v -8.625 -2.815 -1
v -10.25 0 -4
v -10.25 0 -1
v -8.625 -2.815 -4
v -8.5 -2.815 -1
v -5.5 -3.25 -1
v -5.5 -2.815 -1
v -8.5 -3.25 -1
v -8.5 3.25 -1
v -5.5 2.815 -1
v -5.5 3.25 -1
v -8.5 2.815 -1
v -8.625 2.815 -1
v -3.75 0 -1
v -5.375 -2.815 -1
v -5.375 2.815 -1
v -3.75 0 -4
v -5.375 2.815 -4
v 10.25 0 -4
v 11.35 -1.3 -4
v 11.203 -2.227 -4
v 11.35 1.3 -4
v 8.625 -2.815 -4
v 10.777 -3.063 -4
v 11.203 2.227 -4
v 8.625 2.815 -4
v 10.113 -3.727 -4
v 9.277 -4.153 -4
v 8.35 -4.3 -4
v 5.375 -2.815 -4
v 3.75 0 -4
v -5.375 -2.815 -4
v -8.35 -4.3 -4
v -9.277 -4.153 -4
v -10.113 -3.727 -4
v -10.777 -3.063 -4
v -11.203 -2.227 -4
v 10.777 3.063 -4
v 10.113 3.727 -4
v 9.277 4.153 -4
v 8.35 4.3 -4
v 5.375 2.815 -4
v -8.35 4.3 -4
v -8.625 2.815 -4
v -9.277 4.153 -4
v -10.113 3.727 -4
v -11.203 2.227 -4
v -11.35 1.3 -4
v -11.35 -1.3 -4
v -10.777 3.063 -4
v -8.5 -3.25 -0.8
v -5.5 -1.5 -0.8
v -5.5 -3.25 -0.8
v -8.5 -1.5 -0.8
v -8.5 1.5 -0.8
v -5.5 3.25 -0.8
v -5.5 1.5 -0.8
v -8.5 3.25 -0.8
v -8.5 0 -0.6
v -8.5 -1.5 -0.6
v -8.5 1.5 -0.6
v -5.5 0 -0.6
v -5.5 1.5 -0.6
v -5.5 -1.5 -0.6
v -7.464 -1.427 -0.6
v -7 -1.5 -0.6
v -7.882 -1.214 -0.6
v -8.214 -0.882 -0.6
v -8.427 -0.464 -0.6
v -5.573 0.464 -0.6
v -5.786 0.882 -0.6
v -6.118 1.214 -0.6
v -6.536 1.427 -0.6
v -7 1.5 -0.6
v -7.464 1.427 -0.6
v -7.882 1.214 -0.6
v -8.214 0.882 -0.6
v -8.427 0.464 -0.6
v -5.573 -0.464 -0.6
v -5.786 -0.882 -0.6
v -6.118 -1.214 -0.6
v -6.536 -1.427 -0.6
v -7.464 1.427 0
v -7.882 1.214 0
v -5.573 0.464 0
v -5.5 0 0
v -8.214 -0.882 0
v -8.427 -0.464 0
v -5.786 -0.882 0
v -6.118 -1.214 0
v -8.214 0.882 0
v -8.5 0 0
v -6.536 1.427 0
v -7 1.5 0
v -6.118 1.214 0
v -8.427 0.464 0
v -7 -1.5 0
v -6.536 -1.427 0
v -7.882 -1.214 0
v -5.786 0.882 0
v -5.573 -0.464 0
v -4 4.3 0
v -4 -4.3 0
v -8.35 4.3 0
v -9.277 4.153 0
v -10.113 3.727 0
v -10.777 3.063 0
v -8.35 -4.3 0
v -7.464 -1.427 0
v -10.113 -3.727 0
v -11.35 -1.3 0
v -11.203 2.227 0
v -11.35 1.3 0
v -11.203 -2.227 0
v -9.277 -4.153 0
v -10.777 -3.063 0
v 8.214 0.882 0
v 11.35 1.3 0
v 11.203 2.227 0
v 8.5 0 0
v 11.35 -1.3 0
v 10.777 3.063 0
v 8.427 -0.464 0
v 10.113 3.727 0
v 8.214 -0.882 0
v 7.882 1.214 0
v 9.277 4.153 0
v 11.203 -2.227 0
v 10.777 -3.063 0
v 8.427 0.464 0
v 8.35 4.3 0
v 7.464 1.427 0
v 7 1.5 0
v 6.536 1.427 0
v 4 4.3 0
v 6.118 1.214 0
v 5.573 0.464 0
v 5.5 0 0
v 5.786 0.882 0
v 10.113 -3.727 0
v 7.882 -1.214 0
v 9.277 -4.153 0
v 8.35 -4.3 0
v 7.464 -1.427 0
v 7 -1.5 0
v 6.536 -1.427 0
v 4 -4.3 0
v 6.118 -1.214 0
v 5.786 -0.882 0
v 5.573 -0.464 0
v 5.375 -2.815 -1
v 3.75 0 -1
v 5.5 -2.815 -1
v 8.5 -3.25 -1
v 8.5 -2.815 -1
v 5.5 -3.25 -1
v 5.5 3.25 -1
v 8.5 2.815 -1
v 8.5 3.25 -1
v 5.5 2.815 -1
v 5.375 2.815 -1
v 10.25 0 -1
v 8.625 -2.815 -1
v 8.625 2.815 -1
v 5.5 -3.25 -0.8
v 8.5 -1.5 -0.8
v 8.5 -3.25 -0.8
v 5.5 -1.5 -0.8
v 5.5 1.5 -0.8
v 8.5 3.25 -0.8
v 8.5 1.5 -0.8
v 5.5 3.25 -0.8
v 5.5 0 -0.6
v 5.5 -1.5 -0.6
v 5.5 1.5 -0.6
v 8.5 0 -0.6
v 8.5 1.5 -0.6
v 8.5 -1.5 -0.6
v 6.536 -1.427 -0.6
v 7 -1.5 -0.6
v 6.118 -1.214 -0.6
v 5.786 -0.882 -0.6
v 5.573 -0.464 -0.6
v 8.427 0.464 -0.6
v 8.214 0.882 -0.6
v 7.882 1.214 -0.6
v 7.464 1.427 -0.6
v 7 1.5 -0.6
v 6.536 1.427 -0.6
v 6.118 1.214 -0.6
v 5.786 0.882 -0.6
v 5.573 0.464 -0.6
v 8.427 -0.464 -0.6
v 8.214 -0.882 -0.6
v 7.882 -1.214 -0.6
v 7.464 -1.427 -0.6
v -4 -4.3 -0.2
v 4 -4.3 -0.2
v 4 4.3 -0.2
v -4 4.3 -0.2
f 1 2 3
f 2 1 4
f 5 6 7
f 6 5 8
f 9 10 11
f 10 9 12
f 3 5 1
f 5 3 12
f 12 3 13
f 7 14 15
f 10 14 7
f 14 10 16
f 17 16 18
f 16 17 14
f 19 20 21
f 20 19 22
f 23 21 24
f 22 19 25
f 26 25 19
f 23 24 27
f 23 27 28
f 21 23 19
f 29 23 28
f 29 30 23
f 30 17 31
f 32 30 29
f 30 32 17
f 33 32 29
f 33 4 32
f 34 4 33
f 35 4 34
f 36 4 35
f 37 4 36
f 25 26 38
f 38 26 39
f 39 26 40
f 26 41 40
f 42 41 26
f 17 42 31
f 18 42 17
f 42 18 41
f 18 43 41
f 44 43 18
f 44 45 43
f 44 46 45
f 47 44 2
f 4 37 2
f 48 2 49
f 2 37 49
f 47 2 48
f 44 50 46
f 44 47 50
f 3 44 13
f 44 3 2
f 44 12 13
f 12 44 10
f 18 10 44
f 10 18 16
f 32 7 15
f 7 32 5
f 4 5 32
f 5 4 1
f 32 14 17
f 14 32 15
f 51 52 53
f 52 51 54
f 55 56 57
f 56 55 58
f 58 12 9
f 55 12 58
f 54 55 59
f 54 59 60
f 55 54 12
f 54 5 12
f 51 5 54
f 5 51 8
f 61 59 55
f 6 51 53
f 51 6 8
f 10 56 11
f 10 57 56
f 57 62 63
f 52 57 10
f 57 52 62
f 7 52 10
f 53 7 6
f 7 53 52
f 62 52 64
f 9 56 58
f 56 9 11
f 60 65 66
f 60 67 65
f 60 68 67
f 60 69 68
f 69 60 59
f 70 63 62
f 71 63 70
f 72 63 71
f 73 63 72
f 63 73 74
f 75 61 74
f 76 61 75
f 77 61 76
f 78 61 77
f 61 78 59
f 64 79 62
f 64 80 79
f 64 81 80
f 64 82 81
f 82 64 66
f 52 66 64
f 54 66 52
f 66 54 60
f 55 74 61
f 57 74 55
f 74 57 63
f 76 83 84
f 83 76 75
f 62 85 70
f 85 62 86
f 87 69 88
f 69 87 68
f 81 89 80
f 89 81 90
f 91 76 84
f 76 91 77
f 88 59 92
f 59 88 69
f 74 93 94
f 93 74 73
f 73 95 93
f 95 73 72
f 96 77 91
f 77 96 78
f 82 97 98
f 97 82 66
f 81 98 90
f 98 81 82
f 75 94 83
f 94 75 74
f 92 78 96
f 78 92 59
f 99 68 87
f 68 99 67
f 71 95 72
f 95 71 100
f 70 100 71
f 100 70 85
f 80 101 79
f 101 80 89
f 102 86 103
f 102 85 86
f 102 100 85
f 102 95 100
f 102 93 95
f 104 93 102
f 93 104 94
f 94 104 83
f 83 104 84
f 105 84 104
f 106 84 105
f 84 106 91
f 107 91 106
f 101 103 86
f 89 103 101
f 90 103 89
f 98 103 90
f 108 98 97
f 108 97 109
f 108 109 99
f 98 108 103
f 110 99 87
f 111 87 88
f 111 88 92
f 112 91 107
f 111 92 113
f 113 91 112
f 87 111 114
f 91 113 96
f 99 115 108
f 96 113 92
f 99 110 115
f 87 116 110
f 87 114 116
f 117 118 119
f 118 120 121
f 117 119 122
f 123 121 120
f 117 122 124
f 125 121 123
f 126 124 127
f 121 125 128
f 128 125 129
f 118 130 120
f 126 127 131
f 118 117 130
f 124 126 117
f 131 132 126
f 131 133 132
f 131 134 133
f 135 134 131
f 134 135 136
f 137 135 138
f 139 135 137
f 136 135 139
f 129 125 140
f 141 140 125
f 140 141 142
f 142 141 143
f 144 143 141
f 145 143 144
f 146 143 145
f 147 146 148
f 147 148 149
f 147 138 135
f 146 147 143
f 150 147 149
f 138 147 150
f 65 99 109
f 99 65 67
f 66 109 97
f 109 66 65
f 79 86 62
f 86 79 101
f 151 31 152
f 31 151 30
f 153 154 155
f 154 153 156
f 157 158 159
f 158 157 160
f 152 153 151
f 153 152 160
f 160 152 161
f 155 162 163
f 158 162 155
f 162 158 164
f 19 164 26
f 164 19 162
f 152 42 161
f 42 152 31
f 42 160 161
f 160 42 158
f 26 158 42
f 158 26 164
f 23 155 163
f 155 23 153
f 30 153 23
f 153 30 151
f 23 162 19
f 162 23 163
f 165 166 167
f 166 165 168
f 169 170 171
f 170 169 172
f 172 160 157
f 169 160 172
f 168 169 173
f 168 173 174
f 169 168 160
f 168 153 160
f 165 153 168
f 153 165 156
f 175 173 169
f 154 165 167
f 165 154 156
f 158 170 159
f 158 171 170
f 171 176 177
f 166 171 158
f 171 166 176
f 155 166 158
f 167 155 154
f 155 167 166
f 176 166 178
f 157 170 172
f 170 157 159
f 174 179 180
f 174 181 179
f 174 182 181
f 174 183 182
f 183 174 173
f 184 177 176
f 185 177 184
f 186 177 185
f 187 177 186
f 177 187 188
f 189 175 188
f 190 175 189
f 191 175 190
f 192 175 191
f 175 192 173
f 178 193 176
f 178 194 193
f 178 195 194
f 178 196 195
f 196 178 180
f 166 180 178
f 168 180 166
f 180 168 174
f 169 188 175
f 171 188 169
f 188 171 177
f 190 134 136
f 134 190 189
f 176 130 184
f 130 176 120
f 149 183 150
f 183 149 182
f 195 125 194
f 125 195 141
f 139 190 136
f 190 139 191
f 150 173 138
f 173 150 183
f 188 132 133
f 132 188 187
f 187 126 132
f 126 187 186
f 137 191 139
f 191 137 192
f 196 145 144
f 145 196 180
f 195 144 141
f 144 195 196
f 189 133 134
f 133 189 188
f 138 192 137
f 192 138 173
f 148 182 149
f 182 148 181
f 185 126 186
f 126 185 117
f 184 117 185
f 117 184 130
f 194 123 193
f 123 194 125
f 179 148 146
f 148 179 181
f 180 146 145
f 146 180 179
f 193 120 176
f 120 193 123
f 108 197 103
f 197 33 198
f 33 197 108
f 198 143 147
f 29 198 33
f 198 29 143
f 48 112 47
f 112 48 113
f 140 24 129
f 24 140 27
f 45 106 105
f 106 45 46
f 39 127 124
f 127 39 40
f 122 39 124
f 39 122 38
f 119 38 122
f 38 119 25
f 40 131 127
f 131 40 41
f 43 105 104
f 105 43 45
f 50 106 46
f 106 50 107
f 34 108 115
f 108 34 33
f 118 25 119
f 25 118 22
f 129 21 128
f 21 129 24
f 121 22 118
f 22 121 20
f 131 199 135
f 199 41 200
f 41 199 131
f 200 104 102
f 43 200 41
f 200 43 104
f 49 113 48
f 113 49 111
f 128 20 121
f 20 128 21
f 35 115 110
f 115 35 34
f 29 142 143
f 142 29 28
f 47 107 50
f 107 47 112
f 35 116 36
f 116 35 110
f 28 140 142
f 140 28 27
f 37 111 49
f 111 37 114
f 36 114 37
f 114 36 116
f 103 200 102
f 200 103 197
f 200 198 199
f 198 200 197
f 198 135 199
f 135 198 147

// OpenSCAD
// file: ../lib/utils.scad
include <params.scad>;

function tol(val) = val - tolerance;

module cone(r, angle, invert=false) {
    h = tan((180 - angle) / 2) * r;
    translate([0, 0, -h]) {
        if (invert) {
                cylinder(r1=r,r2=0,h=h, $fn=20); 
        } else {
            cylinder(r1=0,r2=r,h=h, $fn=20); 
        }
    }
}

module roundrect(vect, r, center=false, $fn=20) {
    sq = len(vect) > 1
        ? [for (i = [0:1:len(vect)-1]) vect[i] - r * 2]
        : vect - r * 2;
    if (center) {
        translate([-(sq[0]+r*2)/2,-(sq[1]+r*2)/2])
        minkowski() {
            square(sq);
            translate([r, r])
                circle(r=r);
        }
    } else {
        minkowski() {
            square(sq);
            translate([r, r])
                circle(r=r);
        }
    }
}

module profile($fn=20) {
    minkowski() {
        translate([fan_case_radius, fan_case_radius, 0])
            square(fan_case - fan_case_radius * 2);
        circle(fan_case_radius, $fn);
    }
}

module fan_mount_points(radius, $fn=20) {
    offset = (fan_case - fan_screw_distance) / 2;
    translate([offset, offset, 0]) {
        circle(radius, $fn);
        translate([fan_screw_distance, 0, 0])
            circle(radius, $fn);
        translate([fan_screw_distance, fan_screw_distance, 0])
            circle(radius, $fn);
        translate([0, fan_screw_distance, 0])
            circle(radius, $fn);
    }
}

module square_grill(width, height, fin_width, fin_count) {
    fin_spacing = width / fin_count;
    difference() {
        square(width);
        union() {
            for (i = [0:1:fin_count]) {
                translate([(i + 1) * fin_spacing - (fin_spacing / 2) - (fin_width / 2), 0, 0])
                    square([fin_width, height]);
            }
        }
    }
}

module bushing(outer_r, inner_r, h) {
    linear_extrude(h)
        difference() {
            circle(r=outer_r);
            circle(r=inner_r);
        }
}

module screw_at_origin(r, d, l, head, head_d, cap, angle) {
    translate([0, 0, -l])
        screw(r, d, l, head, head_d, cap, angle);
}

module screw(r, d, l, head, head_d, cap, angle, fn=20, head_fn) {
    radius = r > 0 ? r : d / 2;
    head_r = head > 0 ? head : head_d / 2;
    hfn = head_fn ? head_fn : fn;

    union() {
        if (angle) {
            translate([0, 0, l])
                cone(head_r, angle, false);
        }
        linear_extrude(l)
            circle(r=radius, $fn=fn);
        if (cap > 0) {
            union() {
                translate([0, 0, l - cap])
                    linear_extrude(cap)
                        circle(r=head_r, $fn=hfn);
                translate([0, 0, l - cap - layer_height])
                    linear_extrude(layer_height)
                        square([radius * 2, head_r*2], center=true);
                translate([0, 0, l - cap - layer_height*2])
                    linear_extrude(layer_height)
                        square([radius * 2, radius*2], center=true);
            }
        }
    }
}

module inset_screw(r, d, l, head, head_d, cap, angle, inset, fn=20, head_fn) {
    screw_height = l - inset;
    head_r = head > 0 ? head : head_d / 2;

    union() {
        screw(
            r=r,
            d=d,
            l=screw_height,
            head=head_r,
            cap=cap,
            angle=angle,
            fn=fn,
            head_fn=head_fn
        );
        translate([0, 0, screw_height])
            linear_extrude(inset)
                circle(r=head_r, $fn=fn);
    }
}

function inch_to_mm(inches) = inches * 25.4;
// file: ../lib/params.scad
/*************/
/** Exhaust **/
/*************/

/**
 * Fan case sizes: used for all fan parts, including adapters, inlets
 * grills.
 */
fan_case = 120;
fan_screw_distance = 105;
fan_case_depth = 25;
fan_case_radius = 5;
fan_case_screw_radius = 2.5;
fan_case_socket_cap_radius = 5.6 / 2;
fan_case_screw_head_radius = 3;
fan_case_screw_head_angle = 90;

/**
 * Fan grill
 */
grill_screw_size = 3;
grill_screw_radius = grill_screw_size / 2;
grill_screw_inset = 2;
grill_radius = 114 / 2;
grill_fin_offset = 10;
grill_fin_thickness = 2;
grill_fin_degrees = 30;

rear_grill_thickness = 2;

front_grill_thickness = 2;
front_grill_fin_count = 6;
front_grill_fin_thickness = 2;

/**
 * Fan duct filter
 */
filter_thickness = 5;
filter_width = fan_screw_distance - fan_case_screw_radius * 3;
filter_offset = (fan_case - filter_width) / 2;

base_retainer_thickness = 2;
base_height = 30;
base_cut_offset = 10;
base_retainer_inset = 4;

/**
 * Fan to duct adapter
 */
adapter_thickness = 2;
adapter_duct_in = 4;
adapter_height = 14;
adapter_duct_height = 50;
flat_adapter_duct_height = 50;
flat_adapter_screw_radius = 2;
flat_adapter_screw_head_radius = 4;

/**
 * Fan adapter filter caddy
 */
caddy_thickness = 2;
caddy_handle_width = 20;
caddy_handle_depth = 10;
caddy_handle_grip_count = 5;
caddy_handle_grip_depth = 1;
caddy_handle_grip_width = 1;
caddy_clip_height = 2;
caddy_clip_depth = 6;
caddy_clip_offset = 1;

/***************/
/** Enclosure **/
/***************/

/**
 * Enclosure foot
 */
foot_lower_radius = 15;
foot_upper_radius = 20;
foot_height = 18;
foot_inset_radius = 4;
foot_inset_depth = 3;
foot_screw_radius = 4;
foot_screw_inset = 6;
foot_screw_head_radius = 8;

/**
 * Power supply attachment
 */
power_supply_case_thickness = 3.0;
power_supply_screw_radius = 1.5;
power_supply_bushing_radius = 7.5;

power_supply_cable_pass_width = 18;
power_supply_cable_pass_height = 5;
power_supply_cable_pass_overhang = 5;
power_supply_cable_pass_overhang_depth = power_supply_case_thickness;
power_supply_cable_pass_depth = 3;
power_supply_cable_pass_thickness = 3;

/**
 * LED strip holder
 */
led_strip_cutout = 0.2;
led_strip_depth = 4;
led_strip_width = 8;
led_strip_screw_offset = 1.5;
led_strip_screw_radius = 1.5;
led_strip_screw_head = 2.8;
led_strip_nut_head = 3.25;
led_strip_nut_inset = 3;
led_strip_screw_inset = 3;

/**************/
/** Filament **/
/**************/

/**
 * Filament case passthrough
 */
through_base_width = 60;
through_base_height = 20;
through_base_depth = 5;
through_base_screw_offset = 10;
through_base_screw_radius = 1.5;
through_base_screw_head = 2.8;
through_base_nut_head = 3.25;
through_base_nut_inset = 3;
through_base_screw_inset = 3;
through_base_fitting_d = 5;
case_thickness = 1;
case_through_radius = 6;
filament_radius = 1;

inlet_length = 10;
inlet_outer_radius = 3;
inlet_inner_radius = 2;
inlet_angle = -20;


/**********/
/** Misc **/
/**********/

// tolerance is used all over the place to decide how closely parts fit
// together; adjust to the tolerances of your printer. 0.2 works fine for
// a Prusa i3 MK3.
tolerance = 0.2;
layer_height = 0.2;
// file: lib/led-strip-holder.scad
include <../../lib/params.scad>;
use <../../lib/utils.scad>;

$fn=50;

total_height = led_strip_screw_head * 2 + led_strip_screw_offset * 2;
total_width = total_height*2 + led_strip_width/2 + led_strip_screw_offset;
screw_offset = led_strip_width/2 + led_strip_screw_offset + led_strip_screw_radius;

module through_profile() {
    linear_extrude(led_strip_depth)
        roundrect([total_width, total_height], 3, center=true);
}

module left_screw_translate() {
    translate([-screw_offset, 0, 0])
        children();
}

module right_screw_translate() {
    translate([screw_offset, 0, 0])
        children();
}

module outer() {
    union() {
        difference() {
            through_profile();
            left_screw_translate()
                screw(
                    r=led_strip_screw_radius,
                    l=led_strip_depth,
                    head=led_strip_screw_head,
                    cap=led_strip_screw_inset
                );
            right_screw_translate()
                screw(
                    r=led_strip_screw_radius,
                    l=led_strip_depth,
                    head=led_strip_screw_head,
                    cap=led_strip_screw_inset
                );
        }
    }
}

module inner() {
    union() {
        difference() {
            union() {
                through_profile();
            }
            left_screw_translate()
                screw(
                    r=led_strip_screw_radius,
                    l=led_strip_depth,
                    head=led_strip_nut_head,
                    cap=led_strip_nut_inset,
                    head_fn=6
                );
            right_screw_translate()
                screw(
                    r=led_strip_screw_radius,
                    l=led_strip_depth,
                    head=led_strip_nut_head,
                    cap=led_strip_nut_inset,
                    head_fn=6
                );
            linear_extrude(led_strip_cutout)
                square([led_strip_width, total_width], center=true);
        }
    }
}

module drill_guide() {
    difference() {
        through_profile();
        cylinder(r=led_strip_screw_radius, h=led_strip_depth);
        left_screw_translate()
            cylinder(r=led_strip_screw_radius, h=led_strip_depth);
        right_screw_translate()
            cylinder(r=led_strip_screw_radius, h=led_strip_depth);
        linear_extrude(led_strip_cutout)
            square([led_strip_width, total_width], center=true);
    }
}
// main file
use <lib/led-strip-holder.scad>;

$fn=50;

rotate([180, 0, 0])
    inner();
